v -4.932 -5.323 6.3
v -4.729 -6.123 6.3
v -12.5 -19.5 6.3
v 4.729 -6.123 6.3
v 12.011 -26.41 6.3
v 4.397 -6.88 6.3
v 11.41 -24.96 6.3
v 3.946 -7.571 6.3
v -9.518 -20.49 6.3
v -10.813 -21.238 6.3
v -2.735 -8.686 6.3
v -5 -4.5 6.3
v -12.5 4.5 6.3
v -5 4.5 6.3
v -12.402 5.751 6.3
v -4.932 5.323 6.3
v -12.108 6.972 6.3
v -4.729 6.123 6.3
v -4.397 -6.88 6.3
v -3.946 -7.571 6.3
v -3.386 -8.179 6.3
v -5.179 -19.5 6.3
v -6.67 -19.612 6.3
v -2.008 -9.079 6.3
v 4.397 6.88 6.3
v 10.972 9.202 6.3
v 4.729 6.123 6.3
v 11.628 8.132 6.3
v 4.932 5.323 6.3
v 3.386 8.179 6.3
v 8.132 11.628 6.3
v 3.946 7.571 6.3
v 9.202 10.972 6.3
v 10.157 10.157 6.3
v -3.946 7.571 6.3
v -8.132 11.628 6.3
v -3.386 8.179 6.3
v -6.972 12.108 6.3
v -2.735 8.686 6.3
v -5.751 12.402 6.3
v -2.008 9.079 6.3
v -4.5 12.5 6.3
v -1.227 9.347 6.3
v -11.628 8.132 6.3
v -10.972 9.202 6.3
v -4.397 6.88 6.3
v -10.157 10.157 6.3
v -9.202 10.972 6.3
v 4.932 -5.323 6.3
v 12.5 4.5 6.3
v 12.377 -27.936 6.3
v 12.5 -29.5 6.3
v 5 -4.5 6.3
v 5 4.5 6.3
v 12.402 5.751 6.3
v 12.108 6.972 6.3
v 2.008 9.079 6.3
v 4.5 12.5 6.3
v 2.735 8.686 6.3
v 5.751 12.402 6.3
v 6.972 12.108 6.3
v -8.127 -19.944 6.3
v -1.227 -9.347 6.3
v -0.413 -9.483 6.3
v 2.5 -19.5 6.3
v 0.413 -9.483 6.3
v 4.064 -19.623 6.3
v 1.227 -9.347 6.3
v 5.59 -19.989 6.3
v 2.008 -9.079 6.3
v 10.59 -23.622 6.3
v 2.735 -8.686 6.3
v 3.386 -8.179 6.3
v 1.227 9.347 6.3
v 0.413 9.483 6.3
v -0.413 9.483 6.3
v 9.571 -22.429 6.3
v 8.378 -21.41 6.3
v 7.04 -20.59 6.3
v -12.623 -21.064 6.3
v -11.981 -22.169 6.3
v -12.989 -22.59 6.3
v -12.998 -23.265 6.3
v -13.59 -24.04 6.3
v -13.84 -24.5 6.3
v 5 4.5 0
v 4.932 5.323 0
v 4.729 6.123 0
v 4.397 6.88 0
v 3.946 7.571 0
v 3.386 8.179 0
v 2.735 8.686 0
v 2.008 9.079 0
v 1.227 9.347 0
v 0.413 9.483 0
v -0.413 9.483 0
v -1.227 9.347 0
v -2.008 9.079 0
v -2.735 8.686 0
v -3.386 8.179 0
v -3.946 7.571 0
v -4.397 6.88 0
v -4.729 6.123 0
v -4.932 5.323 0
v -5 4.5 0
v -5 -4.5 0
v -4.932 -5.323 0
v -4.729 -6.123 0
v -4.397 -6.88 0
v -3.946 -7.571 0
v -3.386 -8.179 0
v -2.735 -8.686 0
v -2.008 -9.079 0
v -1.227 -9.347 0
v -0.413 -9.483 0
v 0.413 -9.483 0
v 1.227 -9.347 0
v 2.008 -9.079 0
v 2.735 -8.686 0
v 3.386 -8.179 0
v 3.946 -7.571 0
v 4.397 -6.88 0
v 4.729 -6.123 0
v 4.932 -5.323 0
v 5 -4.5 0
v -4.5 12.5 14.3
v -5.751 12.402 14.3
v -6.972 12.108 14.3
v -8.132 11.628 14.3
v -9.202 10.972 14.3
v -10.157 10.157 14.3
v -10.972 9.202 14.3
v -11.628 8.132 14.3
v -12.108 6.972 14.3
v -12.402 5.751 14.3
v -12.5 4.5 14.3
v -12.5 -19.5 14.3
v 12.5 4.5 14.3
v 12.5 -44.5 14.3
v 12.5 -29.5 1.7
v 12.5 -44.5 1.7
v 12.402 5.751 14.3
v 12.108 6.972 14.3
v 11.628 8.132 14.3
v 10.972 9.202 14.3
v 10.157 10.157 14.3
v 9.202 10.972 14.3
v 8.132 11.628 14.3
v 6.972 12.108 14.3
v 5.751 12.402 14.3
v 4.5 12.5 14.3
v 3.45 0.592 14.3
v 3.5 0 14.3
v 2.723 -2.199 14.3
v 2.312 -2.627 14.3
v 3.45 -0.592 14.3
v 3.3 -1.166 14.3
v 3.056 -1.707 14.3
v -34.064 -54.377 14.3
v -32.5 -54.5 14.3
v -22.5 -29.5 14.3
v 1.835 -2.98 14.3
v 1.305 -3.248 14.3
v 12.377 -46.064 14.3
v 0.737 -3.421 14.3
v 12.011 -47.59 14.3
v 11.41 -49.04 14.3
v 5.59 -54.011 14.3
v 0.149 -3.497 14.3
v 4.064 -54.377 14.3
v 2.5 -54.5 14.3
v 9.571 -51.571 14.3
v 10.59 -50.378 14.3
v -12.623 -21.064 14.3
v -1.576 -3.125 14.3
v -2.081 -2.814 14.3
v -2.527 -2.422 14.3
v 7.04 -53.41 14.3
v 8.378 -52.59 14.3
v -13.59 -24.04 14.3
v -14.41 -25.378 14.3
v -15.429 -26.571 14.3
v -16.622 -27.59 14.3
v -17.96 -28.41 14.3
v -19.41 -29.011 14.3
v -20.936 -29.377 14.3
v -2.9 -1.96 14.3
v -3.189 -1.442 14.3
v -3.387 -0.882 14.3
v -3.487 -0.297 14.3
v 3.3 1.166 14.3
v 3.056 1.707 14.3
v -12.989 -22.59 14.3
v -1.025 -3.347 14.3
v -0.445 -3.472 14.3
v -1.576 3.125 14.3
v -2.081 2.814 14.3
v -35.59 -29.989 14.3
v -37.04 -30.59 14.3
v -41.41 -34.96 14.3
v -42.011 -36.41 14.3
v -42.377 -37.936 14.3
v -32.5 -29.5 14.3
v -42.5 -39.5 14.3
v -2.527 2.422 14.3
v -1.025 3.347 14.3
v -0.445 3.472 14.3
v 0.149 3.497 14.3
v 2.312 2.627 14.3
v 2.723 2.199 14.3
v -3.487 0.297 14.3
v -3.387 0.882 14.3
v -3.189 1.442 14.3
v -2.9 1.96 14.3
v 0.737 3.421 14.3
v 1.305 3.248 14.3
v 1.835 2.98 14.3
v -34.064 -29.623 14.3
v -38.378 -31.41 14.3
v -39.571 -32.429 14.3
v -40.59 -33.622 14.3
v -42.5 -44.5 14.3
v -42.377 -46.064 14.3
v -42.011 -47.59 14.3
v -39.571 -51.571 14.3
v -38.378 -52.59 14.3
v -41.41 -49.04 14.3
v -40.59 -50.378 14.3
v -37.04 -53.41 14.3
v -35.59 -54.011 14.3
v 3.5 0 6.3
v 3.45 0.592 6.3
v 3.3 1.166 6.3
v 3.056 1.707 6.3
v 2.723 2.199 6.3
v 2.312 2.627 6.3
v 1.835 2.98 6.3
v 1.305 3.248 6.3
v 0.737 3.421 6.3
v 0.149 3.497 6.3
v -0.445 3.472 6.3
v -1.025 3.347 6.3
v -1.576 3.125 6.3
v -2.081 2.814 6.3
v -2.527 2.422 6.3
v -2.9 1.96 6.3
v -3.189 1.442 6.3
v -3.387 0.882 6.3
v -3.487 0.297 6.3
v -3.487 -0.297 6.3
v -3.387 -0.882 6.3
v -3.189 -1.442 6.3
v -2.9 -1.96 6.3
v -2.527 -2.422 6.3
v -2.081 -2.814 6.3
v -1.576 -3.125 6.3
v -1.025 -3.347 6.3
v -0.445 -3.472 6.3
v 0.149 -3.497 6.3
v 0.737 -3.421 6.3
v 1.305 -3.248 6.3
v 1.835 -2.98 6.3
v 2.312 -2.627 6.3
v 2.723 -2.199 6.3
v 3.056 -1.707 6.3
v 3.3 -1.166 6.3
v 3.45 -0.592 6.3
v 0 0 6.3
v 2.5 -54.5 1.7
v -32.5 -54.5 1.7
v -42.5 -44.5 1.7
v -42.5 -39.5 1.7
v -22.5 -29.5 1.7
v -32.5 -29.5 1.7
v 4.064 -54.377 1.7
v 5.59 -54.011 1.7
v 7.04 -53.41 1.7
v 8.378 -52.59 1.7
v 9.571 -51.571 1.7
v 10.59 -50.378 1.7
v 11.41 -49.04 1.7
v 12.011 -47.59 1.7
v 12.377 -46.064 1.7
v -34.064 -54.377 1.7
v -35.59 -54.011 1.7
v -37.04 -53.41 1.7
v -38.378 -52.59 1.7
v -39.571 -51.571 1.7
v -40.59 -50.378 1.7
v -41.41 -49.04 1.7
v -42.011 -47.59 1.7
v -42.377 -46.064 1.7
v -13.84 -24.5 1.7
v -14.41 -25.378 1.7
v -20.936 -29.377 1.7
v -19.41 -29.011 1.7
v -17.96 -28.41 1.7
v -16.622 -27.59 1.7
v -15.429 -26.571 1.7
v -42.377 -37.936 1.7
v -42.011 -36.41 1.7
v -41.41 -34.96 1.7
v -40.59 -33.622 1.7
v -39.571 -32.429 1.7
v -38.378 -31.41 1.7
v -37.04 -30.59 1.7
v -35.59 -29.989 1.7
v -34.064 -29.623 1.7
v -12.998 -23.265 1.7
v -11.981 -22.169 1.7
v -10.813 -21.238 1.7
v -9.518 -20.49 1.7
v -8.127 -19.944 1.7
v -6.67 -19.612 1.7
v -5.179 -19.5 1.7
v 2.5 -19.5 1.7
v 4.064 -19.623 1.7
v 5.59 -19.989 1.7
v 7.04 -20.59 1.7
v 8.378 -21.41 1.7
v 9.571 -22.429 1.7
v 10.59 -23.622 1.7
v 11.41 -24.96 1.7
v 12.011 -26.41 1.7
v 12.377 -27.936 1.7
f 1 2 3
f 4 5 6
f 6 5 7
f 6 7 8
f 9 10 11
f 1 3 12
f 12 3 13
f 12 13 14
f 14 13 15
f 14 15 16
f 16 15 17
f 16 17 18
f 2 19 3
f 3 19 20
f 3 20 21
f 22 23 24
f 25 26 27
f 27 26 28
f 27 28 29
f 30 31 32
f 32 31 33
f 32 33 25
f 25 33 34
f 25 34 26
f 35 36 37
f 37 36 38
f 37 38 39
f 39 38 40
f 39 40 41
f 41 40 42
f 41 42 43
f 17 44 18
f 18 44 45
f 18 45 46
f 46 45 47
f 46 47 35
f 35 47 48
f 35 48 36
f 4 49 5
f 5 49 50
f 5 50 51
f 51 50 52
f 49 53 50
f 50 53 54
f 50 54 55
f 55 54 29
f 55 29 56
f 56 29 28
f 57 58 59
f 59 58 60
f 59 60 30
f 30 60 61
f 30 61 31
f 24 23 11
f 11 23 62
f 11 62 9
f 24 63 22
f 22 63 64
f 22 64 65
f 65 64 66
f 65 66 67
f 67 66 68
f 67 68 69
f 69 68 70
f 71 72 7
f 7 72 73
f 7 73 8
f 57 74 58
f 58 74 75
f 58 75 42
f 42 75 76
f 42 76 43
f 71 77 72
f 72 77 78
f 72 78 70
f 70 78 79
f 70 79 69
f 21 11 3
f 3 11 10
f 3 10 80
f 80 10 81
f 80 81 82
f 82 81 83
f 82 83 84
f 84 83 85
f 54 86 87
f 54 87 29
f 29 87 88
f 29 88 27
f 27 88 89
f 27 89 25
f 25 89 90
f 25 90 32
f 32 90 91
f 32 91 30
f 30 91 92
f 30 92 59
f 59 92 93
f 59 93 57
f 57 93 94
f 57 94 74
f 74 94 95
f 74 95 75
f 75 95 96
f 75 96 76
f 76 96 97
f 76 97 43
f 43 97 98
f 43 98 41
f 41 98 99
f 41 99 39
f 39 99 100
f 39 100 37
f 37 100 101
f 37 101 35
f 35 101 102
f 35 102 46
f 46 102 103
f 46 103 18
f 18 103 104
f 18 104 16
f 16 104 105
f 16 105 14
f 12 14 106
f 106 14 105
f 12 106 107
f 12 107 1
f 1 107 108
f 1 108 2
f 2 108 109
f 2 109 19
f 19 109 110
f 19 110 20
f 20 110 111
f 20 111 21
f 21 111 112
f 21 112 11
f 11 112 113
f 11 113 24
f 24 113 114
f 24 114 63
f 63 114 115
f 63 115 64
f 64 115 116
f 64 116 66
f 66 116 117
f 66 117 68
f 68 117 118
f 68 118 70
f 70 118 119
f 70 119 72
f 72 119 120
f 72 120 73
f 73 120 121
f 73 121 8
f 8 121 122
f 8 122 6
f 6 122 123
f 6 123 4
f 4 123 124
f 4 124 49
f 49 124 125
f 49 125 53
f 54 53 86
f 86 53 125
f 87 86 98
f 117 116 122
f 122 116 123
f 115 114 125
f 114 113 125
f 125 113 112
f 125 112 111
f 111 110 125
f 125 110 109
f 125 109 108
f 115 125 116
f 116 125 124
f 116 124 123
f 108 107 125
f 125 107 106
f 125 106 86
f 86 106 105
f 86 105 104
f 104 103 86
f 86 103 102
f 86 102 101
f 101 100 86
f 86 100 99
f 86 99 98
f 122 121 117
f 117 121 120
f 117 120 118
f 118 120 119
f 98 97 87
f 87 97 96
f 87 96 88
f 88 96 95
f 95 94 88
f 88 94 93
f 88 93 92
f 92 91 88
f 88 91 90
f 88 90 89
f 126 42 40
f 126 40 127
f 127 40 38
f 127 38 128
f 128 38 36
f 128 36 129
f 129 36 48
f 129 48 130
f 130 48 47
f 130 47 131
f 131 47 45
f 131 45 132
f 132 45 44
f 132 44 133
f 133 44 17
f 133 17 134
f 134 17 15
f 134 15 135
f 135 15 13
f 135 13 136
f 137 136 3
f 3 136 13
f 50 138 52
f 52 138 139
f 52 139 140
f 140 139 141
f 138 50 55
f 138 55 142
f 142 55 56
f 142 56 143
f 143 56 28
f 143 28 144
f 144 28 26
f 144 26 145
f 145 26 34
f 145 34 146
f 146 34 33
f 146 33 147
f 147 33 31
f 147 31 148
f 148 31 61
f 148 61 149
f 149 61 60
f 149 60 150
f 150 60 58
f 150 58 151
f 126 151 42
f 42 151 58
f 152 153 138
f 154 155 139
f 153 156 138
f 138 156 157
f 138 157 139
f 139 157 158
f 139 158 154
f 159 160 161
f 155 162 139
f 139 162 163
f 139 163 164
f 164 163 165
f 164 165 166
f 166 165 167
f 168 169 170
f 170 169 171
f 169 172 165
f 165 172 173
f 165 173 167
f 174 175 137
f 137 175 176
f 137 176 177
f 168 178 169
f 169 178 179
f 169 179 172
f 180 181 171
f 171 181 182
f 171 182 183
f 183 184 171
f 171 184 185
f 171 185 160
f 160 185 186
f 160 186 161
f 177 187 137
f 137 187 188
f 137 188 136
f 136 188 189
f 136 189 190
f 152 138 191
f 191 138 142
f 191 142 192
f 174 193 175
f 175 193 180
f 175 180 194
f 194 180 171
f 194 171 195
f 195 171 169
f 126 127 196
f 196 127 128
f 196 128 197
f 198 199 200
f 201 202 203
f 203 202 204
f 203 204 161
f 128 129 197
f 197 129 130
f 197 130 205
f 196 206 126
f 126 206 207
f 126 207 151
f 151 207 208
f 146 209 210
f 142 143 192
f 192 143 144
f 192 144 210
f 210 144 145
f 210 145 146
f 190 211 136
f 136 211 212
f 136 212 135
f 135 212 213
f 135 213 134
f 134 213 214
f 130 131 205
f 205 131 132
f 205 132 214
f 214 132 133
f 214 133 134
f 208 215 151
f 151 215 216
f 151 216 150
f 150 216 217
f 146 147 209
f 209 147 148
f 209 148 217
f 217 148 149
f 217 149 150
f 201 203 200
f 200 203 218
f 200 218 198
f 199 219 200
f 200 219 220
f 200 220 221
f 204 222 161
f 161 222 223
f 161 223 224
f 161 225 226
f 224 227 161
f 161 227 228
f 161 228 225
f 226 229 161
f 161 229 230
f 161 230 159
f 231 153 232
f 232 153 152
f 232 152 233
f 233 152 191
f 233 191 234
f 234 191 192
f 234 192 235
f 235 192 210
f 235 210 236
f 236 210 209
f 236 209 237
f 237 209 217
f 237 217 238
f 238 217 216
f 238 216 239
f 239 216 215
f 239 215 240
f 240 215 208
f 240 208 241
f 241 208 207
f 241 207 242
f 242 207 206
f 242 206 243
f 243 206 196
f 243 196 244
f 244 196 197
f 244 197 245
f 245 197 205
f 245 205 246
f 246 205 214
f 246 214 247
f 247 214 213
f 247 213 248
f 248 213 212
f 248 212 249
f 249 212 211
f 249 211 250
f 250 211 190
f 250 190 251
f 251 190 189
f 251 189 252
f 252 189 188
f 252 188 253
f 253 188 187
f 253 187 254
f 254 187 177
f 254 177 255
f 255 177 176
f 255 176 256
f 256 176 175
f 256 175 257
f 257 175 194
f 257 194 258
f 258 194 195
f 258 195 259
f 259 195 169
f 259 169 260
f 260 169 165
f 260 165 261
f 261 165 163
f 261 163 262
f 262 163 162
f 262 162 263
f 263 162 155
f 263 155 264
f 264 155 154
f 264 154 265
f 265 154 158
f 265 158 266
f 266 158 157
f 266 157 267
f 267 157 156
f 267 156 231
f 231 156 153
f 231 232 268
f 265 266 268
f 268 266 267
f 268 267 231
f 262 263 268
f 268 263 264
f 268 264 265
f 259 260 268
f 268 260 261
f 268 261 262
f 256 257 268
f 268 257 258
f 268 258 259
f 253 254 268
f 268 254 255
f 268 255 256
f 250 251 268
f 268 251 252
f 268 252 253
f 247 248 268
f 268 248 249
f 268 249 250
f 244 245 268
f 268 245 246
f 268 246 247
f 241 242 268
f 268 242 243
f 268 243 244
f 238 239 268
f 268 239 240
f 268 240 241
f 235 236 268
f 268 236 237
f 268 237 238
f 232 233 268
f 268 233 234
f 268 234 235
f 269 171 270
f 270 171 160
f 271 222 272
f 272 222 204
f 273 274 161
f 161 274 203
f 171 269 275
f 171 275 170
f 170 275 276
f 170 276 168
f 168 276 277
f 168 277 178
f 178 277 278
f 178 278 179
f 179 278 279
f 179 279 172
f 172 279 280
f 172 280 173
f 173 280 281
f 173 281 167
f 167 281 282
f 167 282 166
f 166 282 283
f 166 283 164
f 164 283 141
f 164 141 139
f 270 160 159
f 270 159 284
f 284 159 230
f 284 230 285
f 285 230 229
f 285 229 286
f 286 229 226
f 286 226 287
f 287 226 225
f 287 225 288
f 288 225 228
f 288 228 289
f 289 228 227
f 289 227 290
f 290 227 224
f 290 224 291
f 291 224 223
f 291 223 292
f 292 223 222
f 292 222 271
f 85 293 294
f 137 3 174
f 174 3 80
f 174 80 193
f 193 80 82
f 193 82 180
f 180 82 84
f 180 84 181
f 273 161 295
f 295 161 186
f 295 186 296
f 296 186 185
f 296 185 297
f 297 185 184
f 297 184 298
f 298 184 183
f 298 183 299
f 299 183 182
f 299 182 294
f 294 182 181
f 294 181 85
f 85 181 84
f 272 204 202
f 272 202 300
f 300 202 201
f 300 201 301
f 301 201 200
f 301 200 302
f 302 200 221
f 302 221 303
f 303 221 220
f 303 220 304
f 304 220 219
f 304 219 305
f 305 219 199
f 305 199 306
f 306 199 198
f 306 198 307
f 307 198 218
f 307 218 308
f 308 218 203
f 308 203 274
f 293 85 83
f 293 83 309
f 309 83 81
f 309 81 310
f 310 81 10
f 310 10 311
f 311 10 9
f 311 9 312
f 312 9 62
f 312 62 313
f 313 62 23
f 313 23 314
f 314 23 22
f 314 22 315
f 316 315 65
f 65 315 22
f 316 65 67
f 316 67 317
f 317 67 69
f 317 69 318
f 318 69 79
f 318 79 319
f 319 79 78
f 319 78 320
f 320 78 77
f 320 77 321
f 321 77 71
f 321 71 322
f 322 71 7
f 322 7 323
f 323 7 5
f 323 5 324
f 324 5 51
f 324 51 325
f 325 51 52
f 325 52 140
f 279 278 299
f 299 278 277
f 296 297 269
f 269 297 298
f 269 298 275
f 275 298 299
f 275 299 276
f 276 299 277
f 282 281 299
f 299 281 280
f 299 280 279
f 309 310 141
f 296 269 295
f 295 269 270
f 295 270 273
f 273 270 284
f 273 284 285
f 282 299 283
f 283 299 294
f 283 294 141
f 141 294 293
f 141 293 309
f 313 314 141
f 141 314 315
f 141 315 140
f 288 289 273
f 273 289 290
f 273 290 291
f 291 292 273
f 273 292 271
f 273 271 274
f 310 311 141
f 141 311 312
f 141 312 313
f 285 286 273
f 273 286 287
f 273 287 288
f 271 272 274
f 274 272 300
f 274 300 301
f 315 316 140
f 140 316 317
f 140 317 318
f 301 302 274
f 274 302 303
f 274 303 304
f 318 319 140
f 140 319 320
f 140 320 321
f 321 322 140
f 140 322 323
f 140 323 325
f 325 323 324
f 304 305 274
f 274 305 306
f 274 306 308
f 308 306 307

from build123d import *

# Parameters (mm, degrees)
BOSS_EXTRUDE1_DEPTH = 6.3
BOSS_EXTRUDE2_DEPTH = 8
SKETCH3_R           = 3.5
CUT_EXTRUDE1_DEPTH  = 8
BOSS_EXTRUDE3_START = -8
BOSS_EXTRUDE3_DEPTH = 8
SKETCH5_W           = 30
SKETCH5_H           = 25
BOSS_EXTRUDE4_DEPTH = 8
FILLET1_R           = 10
BOSS_EXTRUDE5_START = 4.6
BOSS_EXTRUDE5_DEPTH = 4.6


with BuildPart() as part:
    # Sketch1 → Boss-Extrude1 (new body)
    with BuildSketch(Plane.XY):
        with BuildLine():
            Line((5, 4.5), (5, -4.5))
            ThreePointArc((5, -4.5), (0, -9.5), (-5, -4.5))
            Line((-5, -4.5), (-5, 4.5))
            ThreePointArc((-5, 4.5), (0, 9.5), (5, 4.5))
        make_face()
    extrude(amount=BOSS_EXTRUDE1_DEPTH)

    # Sketch2 → Boss-Extrude2 (add)
    with BuildSketch(Plane.XY.offset(6.3)):
        with BuildLine():
            Line((-4.5, 12.5), (4.5, 12.5))
            ThreePointArc((4.5, 12.5), (10.156854249, 10.156854249), (12.5, 4.5))
            Line((12.5, 4.5), (12.5, -4.5))
            ThreePointArc((12.5, -4.5), (10.156854249, -10.156854249), (4.5, -12.5))
            Line((4.5, -12.5), (-4.5, -12.5))
            ThreePointArc((-4.5, -12.5), (-10.156854249, -10.156854249), (-12.5, -4.5))
            Line((-12.5, -4.5), (-12.5, 4.5))
            ThreePointArc((-12.5, 4.5), (-10.156854249, 10.156854249), (-4.5, 12.5))
        make_face()
    extrude(amount=BOSS_EXTRUDE2_DEPTH)

    # Sketch3 → Cut-Extrude1 (cut)
    with BuildSketch(Plane.XY.offset(14.3)):
        Circle(SKETCH3_R)
    extrude(amount=-CUT_EXTRUDE1_DEPTH, mode=Mode.SUBTRACT)

    # Sketch4 → Boss-Extrude3 (add)
    with BuildSketch(Plane.XY.offset(14.3).offset(BOSS_EXTRUDE3_START)):
        with BuildLine():
            Line((-12.5, -4.5), (-12.5, -54.5))
            Line((-12.5, -54.5), (12.5, -54.5))
            Line((12.5, -54.5), (12.5, -4.5))
            ThreePointArc((12.5, -4.5), (10.156854249, -10.156854249), (4.5, -12.5))
            Line((4.5, -12.5), (-4.5, -12.5))
            ThreePointArc((-4.5, -12.5), (-10.156854249, -10.156854249), (-12.5, -4.5))
        make_face()
    extrude(amount=BOSS_EXTRUDE3_DEPTH)

    # Sketch5 → Boss-Extrude4 (add)
    with BuildSketch(Plane.XY.offset(14.3)):
        with Locations((-27.5, -42)):
            Rectangle(SKETCH5_W, SKETCH5_H)
    extrude(amount=-BOSS_EXTRUDE4_DEPTH)

    # Fillet1
    fillet1_edges = [part.edges().sort_by_distance(p)[0] for p in [
        (12.5, -54.5, 10.3),
        (-12.5, -29.5, 10.3),
        (-42.5, -54.5, 10.3),
        (-42.5, -29.5, 10.3),
    ]]
    fillet(fillet1_edges, radius=FILLET1_R)

    # Sketch6 → Boss-Extrude5 (add)
    with BuildSketch(Plane(origin=(0, 0, 6.3), x_dir=(-1, 0, 0), z_dir=(0, 0, -1)).offset(BOSS_EXTRUDE5_START)):
        with BuildLine():
            Line((-2.5, -19.5), (5.179491924, -19.5))
            ThreePointArc((5.179491924, -19.5), (10.179491924, -20.839745962), (13.839745962, -24.5))
            ThreePointArc((13.839745962, -24.5), (17.5, -28.160254038), (22.5, -29.5))
            Line((22.5, -29.5), (32.5, -29.5))
            ThreePointArc((32.5, -29.5), (39.571067812, -32.428932188), (42.5, -39.5))
            Line((42.5, -39.5), (42.5, -44.5))
            ThreePointArc((42.5, -44.5), (39.571067812, -51.571067812), (32.5, -54.5))
            Line((32.5, -54.5), (-2.5, -54.5))
            ThreePointArc((-2.5, -54.5), (-9.571067812, -51.571067812), (-12.5, -44.5))
            Line((-12.5, -44.5), (-12.5, -29.5))
            ThreePointArc((-12.5, -29.5), (-9.571067812, -22.428932188), (-2.5, -19.5))
        make_face()
    extrude(amount=-BOSS_EXTRUDE5_DEPTH)


solid = part.part
